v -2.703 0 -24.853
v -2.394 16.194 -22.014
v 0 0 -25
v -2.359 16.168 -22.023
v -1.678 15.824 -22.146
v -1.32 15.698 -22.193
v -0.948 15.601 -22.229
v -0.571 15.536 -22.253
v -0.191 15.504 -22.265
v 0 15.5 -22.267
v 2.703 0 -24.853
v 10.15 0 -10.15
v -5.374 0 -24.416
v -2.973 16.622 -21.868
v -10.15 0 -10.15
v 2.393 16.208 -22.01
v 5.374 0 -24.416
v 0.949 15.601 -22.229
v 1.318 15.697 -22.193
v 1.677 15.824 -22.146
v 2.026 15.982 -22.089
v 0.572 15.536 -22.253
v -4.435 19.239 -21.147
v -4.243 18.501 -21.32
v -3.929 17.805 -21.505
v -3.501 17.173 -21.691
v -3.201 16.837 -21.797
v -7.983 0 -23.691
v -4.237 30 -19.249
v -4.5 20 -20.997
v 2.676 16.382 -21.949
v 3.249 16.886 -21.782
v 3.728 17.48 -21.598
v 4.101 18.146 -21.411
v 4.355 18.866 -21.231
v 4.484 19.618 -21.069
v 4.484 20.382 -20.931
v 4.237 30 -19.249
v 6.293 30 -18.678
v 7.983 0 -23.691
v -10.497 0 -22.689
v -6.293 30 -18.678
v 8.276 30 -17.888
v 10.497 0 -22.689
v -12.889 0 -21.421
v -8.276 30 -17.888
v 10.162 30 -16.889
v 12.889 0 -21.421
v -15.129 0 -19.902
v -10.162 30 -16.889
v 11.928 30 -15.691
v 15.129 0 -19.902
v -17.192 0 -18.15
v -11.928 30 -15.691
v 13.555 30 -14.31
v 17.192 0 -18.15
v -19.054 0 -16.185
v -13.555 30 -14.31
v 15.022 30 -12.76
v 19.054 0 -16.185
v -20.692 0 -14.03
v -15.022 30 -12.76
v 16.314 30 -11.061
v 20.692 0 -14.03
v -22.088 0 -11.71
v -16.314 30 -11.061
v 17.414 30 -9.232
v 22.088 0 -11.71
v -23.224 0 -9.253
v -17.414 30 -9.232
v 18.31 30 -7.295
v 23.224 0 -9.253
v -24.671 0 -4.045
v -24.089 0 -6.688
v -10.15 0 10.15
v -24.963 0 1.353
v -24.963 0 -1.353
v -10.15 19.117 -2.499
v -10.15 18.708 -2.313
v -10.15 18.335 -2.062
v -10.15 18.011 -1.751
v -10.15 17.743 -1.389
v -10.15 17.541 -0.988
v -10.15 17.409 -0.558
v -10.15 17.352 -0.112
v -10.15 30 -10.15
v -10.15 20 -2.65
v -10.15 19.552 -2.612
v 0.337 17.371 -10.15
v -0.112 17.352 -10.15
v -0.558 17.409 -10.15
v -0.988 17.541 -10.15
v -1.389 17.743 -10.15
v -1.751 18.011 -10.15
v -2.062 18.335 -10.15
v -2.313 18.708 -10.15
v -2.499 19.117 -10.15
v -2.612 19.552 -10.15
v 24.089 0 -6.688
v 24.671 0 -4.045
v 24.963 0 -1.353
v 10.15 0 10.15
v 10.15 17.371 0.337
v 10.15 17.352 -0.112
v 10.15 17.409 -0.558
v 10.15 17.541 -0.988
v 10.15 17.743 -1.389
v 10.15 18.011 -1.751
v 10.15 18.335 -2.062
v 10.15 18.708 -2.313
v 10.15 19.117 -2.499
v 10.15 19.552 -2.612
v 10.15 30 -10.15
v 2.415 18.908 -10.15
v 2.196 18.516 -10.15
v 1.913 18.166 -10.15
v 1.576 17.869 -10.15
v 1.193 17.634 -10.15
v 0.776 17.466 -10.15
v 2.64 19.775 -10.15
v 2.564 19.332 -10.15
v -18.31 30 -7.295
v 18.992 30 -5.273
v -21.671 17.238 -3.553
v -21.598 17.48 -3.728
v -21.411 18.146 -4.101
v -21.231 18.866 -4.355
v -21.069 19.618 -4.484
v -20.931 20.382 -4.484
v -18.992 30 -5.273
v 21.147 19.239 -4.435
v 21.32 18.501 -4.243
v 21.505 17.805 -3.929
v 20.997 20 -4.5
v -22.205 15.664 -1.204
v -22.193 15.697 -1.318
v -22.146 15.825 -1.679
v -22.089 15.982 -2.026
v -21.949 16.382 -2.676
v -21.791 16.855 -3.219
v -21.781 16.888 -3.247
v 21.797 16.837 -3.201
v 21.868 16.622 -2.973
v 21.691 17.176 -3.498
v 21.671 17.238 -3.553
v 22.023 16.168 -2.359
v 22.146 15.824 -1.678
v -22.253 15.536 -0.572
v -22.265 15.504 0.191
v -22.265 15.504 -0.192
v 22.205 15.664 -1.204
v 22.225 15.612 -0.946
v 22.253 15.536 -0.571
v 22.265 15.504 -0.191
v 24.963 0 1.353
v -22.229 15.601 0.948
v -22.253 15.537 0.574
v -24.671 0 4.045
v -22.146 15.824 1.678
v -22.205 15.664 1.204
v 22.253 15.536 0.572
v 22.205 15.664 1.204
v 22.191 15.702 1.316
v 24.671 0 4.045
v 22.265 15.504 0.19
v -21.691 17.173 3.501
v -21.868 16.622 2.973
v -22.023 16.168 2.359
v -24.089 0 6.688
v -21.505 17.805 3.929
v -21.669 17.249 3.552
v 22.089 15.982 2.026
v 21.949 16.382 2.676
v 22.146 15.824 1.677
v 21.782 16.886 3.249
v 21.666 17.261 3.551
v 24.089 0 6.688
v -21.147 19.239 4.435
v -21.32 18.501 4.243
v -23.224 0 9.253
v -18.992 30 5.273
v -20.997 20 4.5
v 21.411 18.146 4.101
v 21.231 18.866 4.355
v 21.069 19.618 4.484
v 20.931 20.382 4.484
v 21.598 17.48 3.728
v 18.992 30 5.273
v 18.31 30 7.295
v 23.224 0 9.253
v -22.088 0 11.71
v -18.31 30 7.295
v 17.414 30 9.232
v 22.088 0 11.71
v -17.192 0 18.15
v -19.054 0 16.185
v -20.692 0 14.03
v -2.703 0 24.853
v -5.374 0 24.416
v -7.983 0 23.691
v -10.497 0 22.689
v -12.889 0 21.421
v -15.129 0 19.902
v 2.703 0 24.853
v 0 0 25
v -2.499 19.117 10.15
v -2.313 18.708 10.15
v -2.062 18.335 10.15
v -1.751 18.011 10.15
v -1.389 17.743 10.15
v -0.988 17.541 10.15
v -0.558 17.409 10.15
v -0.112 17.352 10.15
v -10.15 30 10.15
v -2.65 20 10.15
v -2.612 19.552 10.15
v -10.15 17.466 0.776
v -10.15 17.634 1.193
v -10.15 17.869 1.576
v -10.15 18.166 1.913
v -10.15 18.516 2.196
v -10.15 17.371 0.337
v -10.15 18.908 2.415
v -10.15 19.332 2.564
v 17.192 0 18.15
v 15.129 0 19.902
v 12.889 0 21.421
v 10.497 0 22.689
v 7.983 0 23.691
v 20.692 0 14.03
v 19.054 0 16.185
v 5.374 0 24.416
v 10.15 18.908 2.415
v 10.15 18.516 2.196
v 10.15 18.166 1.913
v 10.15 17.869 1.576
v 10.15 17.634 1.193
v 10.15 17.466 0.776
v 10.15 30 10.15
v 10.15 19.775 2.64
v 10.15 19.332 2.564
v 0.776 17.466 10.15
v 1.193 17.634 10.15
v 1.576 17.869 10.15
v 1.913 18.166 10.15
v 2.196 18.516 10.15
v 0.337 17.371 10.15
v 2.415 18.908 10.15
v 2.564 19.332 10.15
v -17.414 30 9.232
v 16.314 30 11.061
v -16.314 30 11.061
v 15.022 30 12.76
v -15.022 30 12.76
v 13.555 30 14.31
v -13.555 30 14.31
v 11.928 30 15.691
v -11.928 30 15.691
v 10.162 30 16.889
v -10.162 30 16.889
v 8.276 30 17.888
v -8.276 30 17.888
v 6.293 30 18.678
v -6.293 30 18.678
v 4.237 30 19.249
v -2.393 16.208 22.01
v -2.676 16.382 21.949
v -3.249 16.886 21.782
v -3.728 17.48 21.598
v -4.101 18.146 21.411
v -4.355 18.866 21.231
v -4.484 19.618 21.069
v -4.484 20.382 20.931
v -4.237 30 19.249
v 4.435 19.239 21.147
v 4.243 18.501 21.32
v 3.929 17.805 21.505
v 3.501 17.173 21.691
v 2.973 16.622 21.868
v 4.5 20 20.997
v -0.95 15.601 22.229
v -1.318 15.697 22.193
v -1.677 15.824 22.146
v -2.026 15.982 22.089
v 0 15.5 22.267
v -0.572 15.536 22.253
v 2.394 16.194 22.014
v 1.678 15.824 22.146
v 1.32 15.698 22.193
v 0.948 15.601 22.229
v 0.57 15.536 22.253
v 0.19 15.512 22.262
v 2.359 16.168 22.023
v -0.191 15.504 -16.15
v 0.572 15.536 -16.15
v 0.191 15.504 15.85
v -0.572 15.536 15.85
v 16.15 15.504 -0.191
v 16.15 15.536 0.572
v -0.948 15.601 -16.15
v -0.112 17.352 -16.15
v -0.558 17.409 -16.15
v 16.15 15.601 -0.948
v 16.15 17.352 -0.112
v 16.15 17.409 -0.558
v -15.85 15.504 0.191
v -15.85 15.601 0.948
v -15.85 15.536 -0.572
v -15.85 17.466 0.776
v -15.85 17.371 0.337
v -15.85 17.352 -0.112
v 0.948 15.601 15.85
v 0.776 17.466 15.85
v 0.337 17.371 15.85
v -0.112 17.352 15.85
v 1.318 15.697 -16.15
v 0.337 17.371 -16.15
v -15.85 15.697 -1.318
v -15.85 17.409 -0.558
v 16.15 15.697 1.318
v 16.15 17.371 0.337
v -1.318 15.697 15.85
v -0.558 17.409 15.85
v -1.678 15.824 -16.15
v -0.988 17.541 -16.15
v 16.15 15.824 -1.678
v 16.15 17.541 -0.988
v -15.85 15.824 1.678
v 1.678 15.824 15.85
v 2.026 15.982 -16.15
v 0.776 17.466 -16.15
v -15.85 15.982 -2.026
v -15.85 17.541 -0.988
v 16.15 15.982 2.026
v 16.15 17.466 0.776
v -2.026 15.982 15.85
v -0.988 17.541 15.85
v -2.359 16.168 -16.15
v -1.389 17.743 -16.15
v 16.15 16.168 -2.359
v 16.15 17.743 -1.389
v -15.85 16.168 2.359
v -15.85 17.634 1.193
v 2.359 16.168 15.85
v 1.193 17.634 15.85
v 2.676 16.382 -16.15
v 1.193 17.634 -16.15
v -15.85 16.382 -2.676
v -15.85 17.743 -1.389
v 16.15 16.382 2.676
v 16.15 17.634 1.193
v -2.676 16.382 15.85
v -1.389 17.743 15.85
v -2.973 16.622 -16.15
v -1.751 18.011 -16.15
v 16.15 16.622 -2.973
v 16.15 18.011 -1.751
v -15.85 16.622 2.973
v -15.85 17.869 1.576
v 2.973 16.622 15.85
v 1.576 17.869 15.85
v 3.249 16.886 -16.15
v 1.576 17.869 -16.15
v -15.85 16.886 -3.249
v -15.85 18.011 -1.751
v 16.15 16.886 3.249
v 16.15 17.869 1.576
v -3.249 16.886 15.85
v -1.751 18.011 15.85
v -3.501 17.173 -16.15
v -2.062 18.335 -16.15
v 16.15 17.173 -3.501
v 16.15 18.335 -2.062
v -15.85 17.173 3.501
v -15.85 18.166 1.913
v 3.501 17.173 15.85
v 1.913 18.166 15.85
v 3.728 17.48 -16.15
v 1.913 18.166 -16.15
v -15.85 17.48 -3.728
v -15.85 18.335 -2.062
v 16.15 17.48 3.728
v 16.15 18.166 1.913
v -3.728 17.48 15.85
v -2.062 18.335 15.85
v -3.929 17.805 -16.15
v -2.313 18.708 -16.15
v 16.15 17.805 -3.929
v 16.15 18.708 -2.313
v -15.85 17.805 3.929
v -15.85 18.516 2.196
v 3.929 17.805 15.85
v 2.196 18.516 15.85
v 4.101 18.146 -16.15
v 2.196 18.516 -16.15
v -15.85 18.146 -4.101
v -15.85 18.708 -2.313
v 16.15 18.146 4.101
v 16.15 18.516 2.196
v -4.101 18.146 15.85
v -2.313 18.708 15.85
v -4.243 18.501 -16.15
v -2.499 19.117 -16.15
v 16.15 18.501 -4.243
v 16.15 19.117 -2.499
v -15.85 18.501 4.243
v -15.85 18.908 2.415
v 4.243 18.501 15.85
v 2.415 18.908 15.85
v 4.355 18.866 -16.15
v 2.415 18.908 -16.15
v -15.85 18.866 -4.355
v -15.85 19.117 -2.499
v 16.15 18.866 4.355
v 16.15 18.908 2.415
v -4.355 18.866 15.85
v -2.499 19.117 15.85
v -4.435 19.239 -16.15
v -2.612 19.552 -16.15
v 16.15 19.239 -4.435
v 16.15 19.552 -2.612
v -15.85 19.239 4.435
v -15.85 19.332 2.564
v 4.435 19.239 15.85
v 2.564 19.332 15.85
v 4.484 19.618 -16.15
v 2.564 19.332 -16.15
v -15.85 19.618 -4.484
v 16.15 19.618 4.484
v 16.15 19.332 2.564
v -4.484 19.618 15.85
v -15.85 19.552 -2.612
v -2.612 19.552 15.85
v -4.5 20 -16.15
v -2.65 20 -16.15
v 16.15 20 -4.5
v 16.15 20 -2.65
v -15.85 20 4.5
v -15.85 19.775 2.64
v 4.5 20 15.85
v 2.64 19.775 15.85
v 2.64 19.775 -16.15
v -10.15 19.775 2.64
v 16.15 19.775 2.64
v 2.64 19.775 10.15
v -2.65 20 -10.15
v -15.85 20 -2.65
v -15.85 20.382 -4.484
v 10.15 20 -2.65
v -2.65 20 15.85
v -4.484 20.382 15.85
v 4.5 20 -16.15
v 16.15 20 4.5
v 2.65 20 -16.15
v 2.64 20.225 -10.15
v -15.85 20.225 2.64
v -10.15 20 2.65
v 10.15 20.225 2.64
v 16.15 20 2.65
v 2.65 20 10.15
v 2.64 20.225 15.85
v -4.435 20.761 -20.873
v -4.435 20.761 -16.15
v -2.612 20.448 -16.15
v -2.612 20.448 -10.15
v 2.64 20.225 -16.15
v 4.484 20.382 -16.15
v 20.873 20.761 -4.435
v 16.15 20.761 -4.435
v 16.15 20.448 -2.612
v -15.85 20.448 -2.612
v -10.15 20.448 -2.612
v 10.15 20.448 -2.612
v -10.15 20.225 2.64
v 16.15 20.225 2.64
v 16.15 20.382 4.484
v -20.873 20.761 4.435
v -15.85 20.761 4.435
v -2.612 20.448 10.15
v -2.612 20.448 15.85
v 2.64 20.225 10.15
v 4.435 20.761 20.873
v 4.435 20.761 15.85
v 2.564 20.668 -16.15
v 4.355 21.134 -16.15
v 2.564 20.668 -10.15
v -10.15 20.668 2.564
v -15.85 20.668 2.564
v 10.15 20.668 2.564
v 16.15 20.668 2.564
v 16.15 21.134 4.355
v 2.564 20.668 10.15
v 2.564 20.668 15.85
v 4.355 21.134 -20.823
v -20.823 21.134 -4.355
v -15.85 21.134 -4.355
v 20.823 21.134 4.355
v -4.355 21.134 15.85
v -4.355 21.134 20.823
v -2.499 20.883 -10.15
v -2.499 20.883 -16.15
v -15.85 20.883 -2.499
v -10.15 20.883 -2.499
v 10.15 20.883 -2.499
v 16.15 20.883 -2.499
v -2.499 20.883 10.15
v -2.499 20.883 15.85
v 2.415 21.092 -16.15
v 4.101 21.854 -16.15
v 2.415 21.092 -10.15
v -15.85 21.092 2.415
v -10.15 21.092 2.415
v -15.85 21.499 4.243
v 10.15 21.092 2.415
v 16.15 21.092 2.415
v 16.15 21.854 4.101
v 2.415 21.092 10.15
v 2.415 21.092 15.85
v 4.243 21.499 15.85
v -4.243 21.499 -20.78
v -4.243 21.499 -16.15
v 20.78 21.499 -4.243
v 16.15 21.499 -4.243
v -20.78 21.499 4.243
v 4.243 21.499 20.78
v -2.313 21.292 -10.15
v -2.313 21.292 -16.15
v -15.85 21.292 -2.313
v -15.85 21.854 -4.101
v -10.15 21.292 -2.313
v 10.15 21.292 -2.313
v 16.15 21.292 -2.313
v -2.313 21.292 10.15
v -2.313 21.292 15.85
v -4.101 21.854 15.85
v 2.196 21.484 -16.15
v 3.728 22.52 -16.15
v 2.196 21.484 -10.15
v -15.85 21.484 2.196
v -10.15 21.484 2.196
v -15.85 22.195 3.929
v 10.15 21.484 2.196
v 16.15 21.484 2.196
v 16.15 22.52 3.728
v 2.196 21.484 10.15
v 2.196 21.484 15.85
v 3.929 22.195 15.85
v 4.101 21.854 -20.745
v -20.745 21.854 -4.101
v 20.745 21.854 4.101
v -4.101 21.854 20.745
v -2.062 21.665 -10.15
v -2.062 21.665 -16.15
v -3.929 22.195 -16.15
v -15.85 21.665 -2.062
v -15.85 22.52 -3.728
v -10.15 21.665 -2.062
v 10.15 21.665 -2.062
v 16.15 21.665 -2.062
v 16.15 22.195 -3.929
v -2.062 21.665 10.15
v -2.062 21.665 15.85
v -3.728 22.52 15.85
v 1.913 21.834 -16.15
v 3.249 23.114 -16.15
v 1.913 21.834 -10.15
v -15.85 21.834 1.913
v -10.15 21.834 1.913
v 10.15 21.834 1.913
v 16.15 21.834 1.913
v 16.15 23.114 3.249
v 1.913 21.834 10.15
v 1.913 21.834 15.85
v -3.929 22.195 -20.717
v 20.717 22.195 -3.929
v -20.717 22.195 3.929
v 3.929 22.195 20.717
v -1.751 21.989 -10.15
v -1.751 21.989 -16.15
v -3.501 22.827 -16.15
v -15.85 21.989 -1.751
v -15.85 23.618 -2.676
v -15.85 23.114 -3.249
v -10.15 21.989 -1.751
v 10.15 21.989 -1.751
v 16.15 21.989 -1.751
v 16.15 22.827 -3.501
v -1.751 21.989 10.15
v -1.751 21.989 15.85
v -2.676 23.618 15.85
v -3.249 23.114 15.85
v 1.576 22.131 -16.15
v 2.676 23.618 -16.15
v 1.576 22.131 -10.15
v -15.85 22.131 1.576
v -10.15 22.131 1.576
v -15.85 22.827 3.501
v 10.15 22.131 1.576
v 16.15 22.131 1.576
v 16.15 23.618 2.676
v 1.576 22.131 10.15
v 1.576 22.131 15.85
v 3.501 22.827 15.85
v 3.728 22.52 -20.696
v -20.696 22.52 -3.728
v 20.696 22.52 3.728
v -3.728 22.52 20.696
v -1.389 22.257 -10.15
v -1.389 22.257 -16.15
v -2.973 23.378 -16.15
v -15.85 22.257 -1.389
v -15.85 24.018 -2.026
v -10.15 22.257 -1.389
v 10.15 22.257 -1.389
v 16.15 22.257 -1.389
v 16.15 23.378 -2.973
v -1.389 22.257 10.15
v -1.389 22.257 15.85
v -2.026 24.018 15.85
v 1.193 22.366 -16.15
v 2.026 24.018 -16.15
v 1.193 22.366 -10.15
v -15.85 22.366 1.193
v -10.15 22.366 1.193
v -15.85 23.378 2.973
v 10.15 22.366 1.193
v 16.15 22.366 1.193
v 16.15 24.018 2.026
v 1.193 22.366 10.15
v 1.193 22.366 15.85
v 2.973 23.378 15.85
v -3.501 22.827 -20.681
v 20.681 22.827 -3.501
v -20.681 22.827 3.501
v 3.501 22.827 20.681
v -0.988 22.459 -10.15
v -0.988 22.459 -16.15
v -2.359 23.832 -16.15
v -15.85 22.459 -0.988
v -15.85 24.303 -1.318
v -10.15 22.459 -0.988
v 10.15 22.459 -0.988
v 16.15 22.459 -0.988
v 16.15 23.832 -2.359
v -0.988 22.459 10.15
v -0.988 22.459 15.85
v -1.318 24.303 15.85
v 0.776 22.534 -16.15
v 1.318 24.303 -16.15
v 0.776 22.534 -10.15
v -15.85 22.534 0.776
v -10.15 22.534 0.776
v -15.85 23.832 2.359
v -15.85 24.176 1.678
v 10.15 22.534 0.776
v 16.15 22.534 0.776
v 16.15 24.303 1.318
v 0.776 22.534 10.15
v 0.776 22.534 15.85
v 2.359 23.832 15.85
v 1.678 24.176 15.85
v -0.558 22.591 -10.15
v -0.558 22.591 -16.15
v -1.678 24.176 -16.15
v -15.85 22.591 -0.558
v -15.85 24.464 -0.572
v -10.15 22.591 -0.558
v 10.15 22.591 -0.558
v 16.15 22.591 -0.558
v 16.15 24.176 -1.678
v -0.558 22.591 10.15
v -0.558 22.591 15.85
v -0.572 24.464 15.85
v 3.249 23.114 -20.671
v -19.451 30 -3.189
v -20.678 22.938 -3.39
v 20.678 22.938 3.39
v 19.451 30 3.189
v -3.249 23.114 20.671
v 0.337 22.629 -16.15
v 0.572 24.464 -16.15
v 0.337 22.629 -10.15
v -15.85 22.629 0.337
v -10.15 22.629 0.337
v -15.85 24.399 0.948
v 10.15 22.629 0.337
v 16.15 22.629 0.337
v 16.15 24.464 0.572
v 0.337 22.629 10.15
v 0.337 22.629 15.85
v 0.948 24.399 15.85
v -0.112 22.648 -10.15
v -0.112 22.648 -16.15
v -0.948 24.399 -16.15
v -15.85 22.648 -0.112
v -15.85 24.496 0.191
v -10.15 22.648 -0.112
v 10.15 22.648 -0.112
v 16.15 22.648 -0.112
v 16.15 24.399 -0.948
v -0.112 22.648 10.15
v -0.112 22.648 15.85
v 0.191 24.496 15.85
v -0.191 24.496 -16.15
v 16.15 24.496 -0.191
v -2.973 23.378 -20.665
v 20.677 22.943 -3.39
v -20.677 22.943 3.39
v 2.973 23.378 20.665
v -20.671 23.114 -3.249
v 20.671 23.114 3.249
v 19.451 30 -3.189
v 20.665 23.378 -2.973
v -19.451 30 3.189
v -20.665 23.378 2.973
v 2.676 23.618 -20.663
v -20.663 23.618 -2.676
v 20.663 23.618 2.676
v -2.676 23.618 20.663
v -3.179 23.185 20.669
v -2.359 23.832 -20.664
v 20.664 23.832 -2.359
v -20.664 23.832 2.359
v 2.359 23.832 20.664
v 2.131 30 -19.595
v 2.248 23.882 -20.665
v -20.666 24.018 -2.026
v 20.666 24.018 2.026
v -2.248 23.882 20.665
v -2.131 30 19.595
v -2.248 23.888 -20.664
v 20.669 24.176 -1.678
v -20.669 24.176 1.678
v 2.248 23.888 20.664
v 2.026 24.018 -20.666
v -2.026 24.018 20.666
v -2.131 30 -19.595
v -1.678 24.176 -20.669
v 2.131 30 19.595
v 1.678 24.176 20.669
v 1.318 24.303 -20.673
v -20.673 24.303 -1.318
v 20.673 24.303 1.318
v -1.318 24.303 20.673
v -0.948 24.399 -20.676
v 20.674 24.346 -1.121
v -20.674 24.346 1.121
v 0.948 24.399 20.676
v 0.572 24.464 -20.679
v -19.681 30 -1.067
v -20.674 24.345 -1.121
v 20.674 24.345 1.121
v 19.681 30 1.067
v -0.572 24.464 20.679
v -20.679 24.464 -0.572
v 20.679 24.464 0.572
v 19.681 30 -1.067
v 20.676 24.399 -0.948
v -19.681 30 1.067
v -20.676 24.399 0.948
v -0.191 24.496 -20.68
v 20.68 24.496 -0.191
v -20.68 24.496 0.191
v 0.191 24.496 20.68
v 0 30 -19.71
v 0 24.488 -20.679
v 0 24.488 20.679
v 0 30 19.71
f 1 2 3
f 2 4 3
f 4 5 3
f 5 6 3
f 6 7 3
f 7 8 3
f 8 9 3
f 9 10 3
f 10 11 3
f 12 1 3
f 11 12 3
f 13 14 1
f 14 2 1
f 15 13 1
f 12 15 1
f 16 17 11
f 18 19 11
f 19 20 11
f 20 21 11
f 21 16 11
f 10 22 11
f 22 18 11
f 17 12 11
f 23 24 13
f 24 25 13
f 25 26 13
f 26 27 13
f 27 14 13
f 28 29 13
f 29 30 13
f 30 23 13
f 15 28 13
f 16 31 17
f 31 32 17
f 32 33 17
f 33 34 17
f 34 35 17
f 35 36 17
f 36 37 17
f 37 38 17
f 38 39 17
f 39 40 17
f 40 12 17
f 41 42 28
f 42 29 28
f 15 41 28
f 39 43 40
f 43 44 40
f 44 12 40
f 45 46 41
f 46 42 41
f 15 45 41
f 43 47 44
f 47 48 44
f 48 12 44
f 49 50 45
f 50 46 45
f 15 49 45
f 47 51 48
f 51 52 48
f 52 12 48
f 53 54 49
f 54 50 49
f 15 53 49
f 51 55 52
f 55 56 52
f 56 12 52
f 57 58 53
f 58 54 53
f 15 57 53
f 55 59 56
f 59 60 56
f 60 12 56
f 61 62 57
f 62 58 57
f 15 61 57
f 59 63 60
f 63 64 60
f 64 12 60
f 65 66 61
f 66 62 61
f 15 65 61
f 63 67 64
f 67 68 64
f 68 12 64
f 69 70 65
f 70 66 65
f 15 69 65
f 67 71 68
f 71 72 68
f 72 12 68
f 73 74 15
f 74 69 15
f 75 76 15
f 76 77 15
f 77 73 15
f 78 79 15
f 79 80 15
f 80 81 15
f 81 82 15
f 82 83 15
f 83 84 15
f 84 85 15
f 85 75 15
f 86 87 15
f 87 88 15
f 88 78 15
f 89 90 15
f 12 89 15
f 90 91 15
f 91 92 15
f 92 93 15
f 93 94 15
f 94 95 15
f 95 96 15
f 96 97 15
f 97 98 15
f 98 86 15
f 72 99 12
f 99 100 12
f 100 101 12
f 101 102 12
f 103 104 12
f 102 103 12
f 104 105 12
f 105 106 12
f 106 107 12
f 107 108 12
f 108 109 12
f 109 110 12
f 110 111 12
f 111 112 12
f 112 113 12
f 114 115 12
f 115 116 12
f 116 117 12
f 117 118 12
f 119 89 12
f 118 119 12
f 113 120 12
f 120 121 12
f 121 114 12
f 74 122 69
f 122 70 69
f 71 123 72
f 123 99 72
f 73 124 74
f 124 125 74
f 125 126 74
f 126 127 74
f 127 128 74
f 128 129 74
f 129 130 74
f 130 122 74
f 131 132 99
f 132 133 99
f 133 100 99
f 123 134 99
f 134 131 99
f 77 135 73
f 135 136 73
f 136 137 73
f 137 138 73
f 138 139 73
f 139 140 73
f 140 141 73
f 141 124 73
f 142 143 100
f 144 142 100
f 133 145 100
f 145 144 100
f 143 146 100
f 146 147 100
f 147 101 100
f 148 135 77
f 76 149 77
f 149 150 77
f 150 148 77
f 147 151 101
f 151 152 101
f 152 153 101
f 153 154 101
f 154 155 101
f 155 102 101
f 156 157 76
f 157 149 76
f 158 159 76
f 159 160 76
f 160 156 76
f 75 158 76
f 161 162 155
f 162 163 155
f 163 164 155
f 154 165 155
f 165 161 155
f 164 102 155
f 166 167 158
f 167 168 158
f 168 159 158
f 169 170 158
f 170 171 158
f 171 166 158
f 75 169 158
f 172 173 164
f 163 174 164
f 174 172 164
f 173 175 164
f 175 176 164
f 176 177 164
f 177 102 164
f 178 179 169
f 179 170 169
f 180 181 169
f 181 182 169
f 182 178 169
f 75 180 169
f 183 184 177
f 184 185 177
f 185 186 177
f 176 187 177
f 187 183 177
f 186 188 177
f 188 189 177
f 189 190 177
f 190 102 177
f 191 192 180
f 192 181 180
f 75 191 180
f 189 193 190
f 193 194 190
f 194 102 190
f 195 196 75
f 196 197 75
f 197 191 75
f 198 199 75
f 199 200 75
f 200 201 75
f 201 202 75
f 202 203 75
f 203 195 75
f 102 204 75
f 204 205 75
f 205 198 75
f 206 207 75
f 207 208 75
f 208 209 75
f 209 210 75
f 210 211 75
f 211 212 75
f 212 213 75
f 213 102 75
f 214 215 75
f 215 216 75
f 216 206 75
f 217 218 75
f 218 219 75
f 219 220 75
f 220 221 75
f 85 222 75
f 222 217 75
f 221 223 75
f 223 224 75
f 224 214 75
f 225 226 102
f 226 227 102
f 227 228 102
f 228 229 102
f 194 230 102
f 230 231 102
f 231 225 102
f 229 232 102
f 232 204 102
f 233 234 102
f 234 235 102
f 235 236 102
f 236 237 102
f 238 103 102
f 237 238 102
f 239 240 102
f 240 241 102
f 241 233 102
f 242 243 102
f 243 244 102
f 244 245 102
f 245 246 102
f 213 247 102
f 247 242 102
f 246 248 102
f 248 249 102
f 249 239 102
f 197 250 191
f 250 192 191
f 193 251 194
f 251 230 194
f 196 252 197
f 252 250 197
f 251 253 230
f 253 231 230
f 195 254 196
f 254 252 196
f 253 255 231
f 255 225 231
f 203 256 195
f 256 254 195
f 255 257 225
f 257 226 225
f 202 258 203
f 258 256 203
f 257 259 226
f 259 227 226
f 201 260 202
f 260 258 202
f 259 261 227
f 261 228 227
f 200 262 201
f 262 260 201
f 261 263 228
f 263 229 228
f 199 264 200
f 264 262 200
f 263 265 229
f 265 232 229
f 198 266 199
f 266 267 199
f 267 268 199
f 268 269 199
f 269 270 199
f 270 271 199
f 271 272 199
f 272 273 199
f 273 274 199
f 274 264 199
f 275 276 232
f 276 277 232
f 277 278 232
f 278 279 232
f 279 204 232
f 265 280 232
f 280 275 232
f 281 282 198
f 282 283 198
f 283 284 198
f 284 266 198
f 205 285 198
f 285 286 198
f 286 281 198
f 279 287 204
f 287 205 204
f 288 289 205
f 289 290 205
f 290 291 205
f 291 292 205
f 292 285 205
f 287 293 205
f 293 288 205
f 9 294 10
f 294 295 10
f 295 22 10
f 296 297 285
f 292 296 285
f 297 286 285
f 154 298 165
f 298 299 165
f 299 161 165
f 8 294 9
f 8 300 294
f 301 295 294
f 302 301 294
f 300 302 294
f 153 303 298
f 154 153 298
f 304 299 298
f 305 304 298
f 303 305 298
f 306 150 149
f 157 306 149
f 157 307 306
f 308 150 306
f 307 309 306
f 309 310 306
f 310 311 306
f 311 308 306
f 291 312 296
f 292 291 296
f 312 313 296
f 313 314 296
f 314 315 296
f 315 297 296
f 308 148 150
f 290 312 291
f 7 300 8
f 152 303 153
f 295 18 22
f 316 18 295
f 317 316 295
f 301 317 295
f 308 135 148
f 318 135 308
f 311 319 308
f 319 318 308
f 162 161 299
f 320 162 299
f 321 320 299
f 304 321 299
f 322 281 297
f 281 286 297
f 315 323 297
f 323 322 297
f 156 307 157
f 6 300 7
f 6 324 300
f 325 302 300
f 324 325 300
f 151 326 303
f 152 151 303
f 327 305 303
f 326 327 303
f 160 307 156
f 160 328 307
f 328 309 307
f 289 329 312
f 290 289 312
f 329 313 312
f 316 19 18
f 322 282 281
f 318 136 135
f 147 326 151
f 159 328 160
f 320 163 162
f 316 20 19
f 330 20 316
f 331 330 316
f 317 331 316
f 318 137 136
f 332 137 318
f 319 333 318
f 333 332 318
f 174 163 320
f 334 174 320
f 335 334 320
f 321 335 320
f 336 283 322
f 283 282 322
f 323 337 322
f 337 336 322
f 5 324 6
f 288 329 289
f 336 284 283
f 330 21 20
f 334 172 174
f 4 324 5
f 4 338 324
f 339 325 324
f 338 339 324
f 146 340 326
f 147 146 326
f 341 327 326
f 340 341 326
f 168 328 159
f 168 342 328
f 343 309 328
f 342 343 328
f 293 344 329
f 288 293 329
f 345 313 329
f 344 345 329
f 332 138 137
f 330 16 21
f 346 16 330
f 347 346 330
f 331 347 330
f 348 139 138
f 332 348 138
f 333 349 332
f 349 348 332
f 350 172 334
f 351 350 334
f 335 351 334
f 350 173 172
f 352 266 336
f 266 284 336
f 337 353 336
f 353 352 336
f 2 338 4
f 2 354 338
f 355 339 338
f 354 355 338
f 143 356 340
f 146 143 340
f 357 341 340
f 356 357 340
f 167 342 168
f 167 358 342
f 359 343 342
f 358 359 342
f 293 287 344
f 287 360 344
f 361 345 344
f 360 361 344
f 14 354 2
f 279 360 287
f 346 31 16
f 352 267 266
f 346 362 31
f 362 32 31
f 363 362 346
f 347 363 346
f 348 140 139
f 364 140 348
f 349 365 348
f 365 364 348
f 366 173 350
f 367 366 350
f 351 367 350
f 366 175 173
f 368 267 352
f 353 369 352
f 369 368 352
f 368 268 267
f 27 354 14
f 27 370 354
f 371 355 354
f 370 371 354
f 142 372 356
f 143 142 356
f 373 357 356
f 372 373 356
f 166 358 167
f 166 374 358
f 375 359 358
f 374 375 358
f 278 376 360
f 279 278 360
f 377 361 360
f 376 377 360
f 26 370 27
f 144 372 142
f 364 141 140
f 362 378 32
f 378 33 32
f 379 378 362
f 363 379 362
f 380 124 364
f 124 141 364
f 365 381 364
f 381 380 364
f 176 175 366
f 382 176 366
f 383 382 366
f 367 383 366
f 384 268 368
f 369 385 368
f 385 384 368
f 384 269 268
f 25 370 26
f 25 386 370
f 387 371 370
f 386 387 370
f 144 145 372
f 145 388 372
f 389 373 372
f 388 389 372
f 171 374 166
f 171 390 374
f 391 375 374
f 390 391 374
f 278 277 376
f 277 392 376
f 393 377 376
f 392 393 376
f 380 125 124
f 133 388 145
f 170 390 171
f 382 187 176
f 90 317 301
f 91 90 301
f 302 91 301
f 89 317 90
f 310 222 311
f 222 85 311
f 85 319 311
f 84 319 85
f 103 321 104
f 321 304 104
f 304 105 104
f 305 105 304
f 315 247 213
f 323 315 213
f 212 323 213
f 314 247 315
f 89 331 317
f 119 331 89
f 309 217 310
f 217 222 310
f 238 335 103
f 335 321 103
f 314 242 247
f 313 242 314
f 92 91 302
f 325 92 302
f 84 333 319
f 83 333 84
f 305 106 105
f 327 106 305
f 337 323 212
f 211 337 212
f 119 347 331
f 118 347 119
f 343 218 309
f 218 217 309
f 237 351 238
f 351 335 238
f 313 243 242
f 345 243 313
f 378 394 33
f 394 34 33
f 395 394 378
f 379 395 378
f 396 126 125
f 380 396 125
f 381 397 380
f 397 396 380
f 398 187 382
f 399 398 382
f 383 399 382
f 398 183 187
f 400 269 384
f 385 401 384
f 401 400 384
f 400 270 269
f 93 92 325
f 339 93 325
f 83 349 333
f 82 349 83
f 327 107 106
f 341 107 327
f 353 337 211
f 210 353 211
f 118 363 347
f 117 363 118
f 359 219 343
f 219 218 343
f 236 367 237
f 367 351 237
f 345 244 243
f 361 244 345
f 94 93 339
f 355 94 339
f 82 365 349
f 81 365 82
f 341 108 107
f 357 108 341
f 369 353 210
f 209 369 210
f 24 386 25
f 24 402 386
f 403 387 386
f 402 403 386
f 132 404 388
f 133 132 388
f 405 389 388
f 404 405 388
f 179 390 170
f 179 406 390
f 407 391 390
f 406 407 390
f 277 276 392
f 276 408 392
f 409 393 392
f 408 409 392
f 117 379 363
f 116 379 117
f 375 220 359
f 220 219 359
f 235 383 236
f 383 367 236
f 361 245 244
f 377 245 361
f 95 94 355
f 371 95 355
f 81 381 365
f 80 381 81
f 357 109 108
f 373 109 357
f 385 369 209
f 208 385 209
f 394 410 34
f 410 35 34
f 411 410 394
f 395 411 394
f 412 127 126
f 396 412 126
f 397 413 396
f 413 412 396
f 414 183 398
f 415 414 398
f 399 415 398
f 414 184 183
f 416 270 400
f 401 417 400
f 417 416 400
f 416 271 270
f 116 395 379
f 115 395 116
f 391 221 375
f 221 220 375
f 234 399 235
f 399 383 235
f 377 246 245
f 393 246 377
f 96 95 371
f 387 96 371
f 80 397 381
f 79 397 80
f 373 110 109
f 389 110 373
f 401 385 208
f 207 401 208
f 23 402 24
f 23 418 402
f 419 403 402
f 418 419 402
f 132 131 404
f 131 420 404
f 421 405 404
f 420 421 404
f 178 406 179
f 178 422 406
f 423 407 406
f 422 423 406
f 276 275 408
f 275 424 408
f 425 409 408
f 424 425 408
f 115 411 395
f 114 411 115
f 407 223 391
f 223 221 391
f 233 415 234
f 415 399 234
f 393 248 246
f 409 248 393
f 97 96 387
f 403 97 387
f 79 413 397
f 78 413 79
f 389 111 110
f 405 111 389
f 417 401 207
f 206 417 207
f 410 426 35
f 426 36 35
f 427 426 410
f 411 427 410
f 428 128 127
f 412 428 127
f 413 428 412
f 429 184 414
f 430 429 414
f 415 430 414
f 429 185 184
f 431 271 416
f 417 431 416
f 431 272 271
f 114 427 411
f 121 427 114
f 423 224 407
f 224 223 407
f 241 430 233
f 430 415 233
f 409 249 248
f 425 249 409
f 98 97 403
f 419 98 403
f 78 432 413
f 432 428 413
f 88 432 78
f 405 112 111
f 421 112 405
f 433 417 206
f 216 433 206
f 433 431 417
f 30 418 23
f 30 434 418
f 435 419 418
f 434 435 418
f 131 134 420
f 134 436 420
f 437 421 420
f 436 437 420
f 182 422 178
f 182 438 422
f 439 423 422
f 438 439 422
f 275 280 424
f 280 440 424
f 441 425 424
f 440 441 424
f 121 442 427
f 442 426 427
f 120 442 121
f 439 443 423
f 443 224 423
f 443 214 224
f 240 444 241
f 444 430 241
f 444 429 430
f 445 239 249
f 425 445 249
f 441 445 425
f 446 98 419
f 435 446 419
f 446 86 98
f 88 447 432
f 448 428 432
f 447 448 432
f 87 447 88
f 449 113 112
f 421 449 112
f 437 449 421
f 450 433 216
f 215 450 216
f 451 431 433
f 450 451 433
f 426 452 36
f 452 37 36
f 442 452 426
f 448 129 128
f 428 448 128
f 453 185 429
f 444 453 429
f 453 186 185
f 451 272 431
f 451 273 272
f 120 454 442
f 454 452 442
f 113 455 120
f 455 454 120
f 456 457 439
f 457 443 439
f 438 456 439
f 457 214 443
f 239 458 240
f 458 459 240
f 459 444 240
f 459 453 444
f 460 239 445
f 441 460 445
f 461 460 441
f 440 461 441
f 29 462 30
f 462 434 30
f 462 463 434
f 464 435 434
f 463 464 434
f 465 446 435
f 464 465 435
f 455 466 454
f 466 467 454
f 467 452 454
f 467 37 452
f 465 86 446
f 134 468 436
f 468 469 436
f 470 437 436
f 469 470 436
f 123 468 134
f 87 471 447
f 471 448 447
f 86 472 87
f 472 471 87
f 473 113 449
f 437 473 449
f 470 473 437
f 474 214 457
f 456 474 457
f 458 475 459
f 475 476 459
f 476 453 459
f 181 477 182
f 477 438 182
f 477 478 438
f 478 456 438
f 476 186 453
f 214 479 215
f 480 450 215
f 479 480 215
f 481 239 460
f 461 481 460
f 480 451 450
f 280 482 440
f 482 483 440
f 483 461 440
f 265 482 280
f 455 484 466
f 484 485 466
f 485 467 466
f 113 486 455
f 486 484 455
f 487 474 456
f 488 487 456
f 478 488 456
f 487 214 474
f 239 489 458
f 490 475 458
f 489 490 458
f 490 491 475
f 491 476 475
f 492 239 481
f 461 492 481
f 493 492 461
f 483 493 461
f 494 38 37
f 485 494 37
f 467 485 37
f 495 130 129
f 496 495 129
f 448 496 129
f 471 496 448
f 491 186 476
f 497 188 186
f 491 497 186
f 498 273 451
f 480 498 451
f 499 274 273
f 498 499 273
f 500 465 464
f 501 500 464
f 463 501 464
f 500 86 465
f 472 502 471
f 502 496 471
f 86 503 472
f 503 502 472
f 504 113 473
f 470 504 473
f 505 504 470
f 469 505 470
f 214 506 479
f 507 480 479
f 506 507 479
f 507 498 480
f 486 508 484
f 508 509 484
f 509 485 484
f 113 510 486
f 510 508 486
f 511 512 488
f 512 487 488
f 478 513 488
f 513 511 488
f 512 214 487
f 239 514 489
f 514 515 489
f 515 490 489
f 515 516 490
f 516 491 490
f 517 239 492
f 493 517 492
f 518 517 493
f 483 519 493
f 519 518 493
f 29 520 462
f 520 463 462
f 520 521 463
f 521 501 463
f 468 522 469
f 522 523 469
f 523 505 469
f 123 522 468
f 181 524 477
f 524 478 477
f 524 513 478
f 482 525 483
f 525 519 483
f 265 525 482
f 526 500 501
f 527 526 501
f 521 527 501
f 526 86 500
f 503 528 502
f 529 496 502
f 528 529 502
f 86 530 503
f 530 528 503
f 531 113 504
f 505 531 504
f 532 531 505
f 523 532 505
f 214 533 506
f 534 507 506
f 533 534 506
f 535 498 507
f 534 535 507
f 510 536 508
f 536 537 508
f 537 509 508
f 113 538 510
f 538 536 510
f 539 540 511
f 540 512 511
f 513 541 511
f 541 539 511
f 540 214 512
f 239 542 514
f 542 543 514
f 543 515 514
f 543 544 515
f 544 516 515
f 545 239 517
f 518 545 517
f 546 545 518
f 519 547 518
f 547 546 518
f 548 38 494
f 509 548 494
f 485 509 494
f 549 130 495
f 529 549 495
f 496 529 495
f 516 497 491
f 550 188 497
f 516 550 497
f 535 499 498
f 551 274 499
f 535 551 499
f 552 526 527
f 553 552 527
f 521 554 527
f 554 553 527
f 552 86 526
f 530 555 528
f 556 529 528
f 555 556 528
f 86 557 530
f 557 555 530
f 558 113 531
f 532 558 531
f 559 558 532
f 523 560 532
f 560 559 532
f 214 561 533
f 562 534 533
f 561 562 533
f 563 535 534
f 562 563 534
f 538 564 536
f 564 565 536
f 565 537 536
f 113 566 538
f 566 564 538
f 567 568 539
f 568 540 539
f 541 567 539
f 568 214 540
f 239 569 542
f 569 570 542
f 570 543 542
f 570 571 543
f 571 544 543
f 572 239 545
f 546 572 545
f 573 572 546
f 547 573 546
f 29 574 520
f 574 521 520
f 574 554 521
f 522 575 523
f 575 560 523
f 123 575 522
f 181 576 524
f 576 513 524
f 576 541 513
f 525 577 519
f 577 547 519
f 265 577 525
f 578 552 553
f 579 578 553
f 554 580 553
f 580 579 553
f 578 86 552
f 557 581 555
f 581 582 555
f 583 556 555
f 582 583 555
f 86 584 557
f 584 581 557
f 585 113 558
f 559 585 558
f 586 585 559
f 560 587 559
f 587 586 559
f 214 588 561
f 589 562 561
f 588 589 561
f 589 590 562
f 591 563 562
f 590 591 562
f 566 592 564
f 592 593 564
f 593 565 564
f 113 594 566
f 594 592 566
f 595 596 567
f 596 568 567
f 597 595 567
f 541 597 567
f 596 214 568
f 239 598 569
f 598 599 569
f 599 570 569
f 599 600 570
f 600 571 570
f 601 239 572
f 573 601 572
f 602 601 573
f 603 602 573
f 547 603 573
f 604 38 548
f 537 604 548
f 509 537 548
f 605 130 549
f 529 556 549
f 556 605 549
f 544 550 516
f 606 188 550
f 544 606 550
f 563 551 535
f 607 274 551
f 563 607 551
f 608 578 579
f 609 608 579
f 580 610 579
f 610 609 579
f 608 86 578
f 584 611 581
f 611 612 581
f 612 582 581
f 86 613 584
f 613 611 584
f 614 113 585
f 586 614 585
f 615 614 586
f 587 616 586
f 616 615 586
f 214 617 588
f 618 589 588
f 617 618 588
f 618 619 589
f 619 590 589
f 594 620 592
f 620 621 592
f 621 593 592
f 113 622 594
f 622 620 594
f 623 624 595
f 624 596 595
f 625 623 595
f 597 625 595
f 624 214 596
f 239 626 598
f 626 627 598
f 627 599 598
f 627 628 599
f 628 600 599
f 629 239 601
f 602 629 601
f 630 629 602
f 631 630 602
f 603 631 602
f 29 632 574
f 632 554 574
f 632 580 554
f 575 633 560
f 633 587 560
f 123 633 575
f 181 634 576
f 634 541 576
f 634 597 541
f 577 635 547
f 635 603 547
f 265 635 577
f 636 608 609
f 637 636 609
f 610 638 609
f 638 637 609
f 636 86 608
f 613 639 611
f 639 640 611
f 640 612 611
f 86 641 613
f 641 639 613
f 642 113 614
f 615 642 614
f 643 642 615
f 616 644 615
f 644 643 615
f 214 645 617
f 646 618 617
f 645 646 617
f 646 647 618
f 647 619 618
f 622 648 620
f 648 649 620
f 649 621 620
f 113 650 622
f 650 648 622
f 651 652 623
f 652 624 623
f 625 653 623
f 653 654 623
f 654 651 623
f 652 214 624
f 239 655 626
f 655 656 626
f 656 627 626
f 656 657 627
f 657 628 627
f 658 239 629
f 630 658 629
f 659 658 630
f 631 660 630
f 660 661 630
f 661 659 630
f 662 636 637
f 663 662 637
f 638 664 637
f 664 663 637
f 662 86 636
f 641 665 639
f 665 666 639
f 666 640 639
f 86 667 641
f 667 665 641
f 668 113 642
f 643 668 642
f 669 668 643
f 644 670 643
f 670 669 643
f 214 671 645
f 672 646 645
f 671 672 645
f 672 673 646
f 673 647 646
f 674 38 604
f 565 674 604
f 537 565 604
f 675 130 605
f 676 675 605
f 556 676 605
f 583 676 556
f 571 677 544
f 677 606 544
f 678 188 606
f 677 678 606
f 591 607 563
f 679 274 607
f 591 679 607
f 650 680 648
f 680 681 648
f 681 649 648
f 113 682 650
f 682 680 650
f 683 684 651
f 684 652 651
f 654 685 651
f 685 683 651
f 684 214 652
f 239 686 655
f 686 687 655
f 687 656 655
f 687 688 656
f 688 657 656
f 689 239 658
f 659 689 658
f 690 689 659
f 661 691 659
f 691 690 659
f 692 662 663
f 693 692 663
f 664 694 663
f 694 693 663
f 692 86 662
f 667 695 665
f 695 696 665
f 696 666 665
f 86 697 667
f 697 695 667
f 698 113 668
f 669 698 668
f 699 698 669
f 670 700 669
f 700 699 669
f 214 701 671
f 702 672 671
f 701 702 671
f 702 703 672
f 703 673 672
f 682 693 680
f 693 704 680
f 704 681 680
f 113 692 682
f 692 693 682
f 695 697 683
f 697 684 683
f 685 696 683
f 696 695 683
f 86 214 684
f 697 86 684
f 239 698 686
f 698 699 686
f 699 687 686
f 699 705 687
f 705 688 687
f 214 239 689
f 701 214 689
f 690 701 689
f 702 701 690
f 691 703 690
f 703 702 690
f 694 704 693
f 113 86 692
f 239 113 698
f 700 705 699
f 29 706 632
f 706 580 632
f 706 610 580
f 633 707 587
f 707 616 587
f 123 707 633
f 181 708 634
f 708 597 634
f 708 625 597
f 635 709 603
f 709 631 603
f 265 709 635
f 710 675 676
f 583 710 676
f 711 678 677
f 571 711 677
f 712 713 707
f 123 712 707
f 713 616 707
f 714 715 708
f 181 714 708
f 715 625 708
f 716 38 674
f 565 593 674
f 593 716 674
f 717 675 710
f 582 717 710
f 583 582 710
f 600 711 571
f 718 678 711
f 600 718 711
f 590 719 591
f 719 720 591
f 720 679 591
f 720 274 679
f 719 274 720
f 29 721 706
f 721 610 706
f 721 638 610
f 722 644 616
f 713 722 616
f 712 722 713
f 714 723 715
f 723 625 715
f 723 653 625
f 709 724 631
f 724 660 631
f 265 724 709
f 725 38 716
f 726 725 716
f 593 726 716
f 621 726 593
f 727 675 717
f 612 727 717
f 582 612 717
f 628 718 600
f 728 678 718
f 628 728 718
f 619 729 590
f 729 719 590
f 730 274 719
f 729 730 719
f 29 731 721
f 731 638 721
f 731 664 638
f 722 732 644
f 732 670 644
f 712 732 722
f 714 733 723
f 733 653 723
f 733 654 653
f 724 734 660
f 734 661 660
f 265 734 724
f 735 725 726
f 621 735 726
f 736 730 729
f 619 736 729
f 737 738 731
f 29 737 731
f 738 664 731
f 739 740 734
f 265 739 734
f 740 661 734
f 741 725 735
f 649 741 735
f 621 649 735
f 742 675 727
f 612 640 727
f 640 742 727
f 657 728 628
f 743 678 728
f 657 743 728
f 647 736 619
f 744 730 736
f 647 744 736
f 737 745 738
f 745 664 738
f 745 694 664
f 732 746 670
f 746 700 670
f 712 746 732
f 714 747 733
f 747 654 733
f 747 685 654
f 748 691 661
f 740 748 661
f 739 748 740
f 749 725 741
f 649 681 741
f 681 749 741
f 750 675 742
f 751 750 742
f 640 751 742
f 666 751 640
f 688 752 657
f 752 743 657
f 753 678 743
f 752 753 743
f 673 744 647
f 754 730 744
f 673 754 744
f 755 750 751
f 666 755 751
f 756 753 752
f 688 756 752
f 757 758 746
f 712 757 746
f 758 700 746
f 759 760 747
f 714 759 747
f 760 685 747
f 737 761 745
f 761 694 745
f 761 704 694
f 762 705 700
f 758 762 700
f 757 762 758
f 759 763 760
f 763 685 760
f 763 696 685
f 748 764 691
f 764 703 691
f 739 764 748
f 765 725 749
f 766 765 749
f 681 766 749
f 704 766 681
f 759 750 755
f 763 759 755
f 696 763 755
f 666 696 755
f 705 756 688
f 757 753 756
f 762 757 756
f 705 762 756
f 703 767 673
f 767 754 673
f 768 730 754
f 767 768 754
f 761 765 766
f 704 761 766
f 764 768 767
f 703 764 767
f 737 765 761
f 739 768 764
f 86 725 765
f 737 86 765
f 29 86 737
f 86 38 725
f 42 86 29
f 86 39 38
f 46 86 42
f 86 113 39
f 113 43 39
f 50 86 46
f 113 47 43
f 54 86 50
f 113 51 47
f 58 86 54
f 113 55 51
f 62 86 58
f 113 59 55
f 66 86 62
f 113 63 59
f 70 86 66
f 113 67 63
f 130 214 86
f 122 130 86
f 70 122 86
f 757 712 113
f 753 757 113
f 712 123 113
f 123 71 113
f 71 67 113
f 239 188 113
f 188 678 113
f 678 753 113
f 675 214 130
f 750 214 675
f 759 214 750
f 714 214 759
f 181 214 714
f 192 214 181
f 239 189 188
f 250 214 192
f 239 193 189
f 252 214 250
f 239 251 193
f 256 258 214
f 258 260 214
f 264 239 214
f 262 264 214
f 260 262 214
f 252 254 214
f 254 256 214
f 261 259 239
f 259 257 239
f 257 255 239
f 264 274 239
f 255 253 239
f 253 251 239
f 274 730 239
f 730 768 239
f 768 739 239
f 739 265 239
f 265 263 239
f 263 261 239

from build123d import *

# Parameters (mm, degrees)
SKETCH_1_R               = 25
EXTRUDE_1_DEPTH          = 30
EXTRUDE_1_TAPER          = 10
SKETCH_3_W               = 20.3
SKETCH_3_H               = 20.3
CUT_EXTRUDE_2_DEPTH      = 47.36809265
CUT_EXTRUDE_3_DEPTH      = 53.540674891
CUT_EXTRUDE_3_DEPTH_BACK = 53.540674891
SKETCH_4_R               = 2.65
CUT_EXTRUDE_4_DEPTH      = 53.540674891
CUT_EXTRUDE_4_DEPTH_BACK = 53.540674891
SKETCH_5_R               = 2.65
CUT_EXTRUDE_START        = -15
SKETCH_6_R               = 4.5
CUT_EXTRUDE_5_DEPTH      = 19
SKETCH_7_R               = 4.5
CUT_EXTRUDE_6_DEPTH      = 19


with BuildPart() as part:
    # 草图1 → 凸台-拉伸1 (new body)
    with BuildSketch(Plane(origin=(0, 0, 0), x_dir=(1, 0, 0), z_dir=(0, 1, 0))):
        Circle(SKETCH_1_R)
    extrude(amount=EXTRUDE_1_DEPTH, taper=EXTRUDE_1_TAPER)

    # 草图3 → 切除-拉伸2 (cut, through all)
    with BuildSketch(Plane(origin=(0, 30, 0), x_dir=(1, 0, 0), z_dir=(0, 1, 0))):
        Rectangle(SKETCH_3_W, SKETCH_3_H)
    extrude(amount=-CUT_EXTRUDE_2_DEPTH, mode=Mode.SUBTRACT)

    # 草图4 → 切除-拉伸3 (cut, two sides: drawn at the far end of the back side and taken through both)
    with BuildSketch(Plane(origin=(-10.15, 0, 0), x_dir=(0, 0, -1), z_dir=(1, 0, 0)).offset(-CUT_EXTRUDE_3_DEPTH_BACK)):
        with Locations(Location((0, 20, 0), (0, 0, 301.069984195))):
            Circle(SKETCH_4_R)
    extrude(amount=CUT_EXTRUDE_3_DEPTH + CUT_EXTRUDE_3_DEPTH_BACK, mode=Mode.SUBTRACT)

    # 草图5 → 切除-拉伸4 (cut, two sides: drawn at the far end of the back side and taken through both)
    with BuildSketch(Plane(origin=(0, 0, 10.15), x_dir=(-1, 0, 0), z_dir=(0, 0, -1)).offset(-CUT_EXTRUDE_4_DEPTH_BACK)):
        with Locations((0, 20)):
            Circle(SKETCH_5_R)
    extrude(amount=CUT_EXTRUDE_4_DEPTH + CUT_EXTRUDE_4_DEPTH_BACK, mode=Mode.SUBTRACT)

    # 草图6 → 切除-拉伸5 (cut)
    with BuildSketch(Plane.XY.offset(-20.15).offset(CUT_EXTRUDE_START)):
        with Locations(Location((0, 20, 0), (0, 0, 224.651479051))):
            Circle(SKETCH_6_R)
    cut_extrude_5 = extrude(amount=CUT_EXTRUDE_5_DEPTH, mode=Mode.SUBTRACT)

    # 草图7 → 切除-拉伸6 (cut)
    with BuildSketch(Plane.ZY.offset(-20.15).offset(CUT_EXTRUDE_START)):
        with Locations(Location((0, 20, 0), (0, 0, 224.651479051))):
            Circle(SKETCH_7_R)
    cut_extrude_6 = extrude(amount=CUT_EXTRUDE_6_DEPTH, mode=Mode.SUBTRACT)

    # 镜向1: 切除-拉伸6 across plane
    add(cut_extrude_6.mirror(Plane.ZY.offset(-0.15)), mode=Mode.SUBTRACT)

    # 镜向2: 切除-拉伸5 across plane
    add(cut_extrude_5.mirror(Plane.XY.offset(-0.15)), mode=Mode.SUBTRACT)


solid = part.part
